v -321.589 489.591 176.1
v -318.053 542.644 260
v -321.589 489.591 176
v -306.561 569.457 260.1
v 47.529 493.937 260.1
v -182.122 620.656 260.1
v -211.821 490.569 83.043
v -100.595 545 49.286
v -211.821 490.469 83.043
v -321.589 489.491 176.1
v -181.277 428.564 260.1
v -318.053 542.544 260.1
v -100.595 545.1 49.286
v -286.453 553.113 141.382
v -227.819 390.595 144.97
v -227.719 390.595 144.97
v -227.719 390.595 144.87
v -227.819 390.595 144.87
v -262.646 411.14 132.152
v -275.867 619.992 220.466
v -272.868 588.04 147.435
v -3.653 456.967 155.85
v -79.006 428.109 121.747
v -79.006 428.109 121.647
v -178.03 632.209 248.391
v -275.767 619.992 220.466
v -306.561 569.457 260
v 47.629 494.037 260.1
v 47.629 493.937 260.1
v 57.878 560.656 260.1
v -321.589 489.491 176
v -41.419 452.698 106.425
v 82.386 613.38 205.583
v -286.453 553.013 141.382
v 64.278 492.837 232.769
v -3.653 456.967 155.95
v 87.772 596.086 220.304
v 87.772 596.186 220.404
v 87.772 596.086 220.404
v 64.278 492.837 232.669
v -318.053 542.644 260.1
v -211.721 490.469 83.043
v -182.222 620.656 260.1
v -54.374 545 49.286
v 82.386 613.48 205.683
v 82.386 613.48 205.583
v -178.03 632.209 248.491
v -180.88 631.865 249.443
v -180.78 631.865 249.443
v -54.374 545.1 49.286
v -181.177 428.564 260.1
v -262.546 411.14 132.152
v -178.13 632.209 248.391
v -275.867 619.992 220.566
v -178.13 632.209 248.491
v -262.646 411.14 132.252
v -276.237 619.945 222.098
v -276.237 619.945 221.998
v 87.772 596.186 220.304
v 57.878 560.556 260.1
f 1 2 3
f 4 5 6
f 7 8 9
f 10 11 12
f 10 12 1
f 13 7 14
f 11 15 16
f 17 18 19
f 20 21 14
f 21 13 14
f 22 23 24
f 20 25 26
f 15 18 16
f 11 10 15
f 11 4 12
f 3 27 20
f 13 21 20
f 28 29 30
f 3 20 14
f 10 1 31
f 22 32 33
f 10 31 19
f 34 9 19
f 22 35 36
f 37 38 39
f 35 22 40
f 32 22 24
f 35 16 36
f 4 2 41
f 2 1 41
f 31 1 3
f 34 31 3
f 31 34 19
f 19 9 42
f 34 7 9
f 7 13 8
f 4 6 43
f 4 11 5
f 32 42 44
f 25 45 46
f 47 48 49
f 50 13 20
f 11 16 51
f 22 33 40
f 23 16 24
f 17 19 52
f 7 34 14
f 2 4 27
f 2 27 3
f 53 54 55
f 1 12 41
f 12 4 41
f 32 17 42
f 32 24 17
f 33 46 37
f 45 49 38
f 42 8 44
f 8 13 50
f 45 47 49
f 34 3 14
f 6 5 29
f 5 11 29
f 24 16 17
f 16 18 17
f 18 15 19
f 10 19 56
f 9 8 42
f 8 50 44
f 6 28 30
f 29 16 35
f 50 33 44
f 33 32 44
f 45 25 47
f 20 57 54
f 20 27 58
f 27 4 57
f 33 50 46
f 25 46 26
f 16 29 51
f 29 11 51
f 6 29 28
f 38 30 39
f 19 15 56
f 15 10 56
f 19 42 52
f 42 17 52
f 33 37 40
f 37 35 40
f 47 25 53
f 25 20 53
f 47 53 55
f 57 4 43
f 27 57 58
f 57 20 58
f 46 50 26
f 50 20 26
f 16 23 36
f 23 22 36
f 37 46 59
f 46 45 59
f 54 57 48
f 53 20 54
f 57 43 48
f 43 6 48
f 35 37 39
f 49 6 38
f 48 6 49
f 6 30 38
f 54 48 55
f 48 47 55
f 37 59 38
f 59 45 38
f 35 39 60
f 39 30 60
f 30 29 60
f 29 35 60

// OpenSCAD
hull(){ translate([-321.589494648,489.490913617,175.999502116])cube(0.1,0.1,0.1);
translate([-286.453042441,553.013465144,141.382307823])cube(0.1,0.1,0.1);
translate([87.6722282024,596.085844995,220.30409042])cube(0.1,0.1,0.1);
translate([-3.7525702536,456.967100754,155.84989719])cube(0.1,0.1,0.1);
translate([64.178539626,492.837266251,232.669189671])cube(0.1,0.1,0.1);
translate([-180.880250223,631.764968722,249.343163539])cube(0.1,0.1,0.1);
translate([-276.237284617,619.845339423,221.998131617])cube(0.1,0.1,0.1);
translate([82.2864796722,613.380081941,205.583044437])cube(0.1,0.1,0.1);
translate([-178.130434783,632.108695652,248.391304348])cube(0.1,0.1,0.1);
translate([-272.867870475,587.940359406,147.435107214])cube(0.1,0.1,0.1);
translate([-275.867372668,619.891578417,220.466464952])cube(0.1,0.1,0.1);
translate([-181.276595745,428.563829787,260.0])cube(0.1,0.1,0.1);
translate([-182.222222222,620.555555556,260.0])cube(0.1,0.1,0.1);
translate([57.7777777778,560.555555556,260.0])cube(0.1,0.1,0.1);
translate([47.5287356322,493.936781609,260.0])cube(0.1,0.1,0.1);
translate([-318.052631579,542.543859649,260.0])cube(0.1,0.1,0.1);
translate([-306.56122449,569.357142857,260.0])cube(0.1,0.1,0.1);
translate([-262.646404744,411.139733136,132.151593773])cube(0.1,0.1,0.1);
translate([-227.818679007,390.595288178,144.869583509])cube(0.1,0.1,0.1);
translate([-211.820526044,490.469314079,83.0428055699])cube(0.1,0.1,0.1);
translate([-79.1055718475,428.108504399,121.647116325])cube(0.1,0.1,0.1);
translate([-100.595238095,545.0,49.2857142857])cube(0.1,0.1,0.1);
translate([-54.4736842105,545.0,49.2857142857])cube(0.1,0.1,0.1);
translate([-41.5189968464,452.69785253,106.42513891])cube(0.1,0.1,0.1); }
